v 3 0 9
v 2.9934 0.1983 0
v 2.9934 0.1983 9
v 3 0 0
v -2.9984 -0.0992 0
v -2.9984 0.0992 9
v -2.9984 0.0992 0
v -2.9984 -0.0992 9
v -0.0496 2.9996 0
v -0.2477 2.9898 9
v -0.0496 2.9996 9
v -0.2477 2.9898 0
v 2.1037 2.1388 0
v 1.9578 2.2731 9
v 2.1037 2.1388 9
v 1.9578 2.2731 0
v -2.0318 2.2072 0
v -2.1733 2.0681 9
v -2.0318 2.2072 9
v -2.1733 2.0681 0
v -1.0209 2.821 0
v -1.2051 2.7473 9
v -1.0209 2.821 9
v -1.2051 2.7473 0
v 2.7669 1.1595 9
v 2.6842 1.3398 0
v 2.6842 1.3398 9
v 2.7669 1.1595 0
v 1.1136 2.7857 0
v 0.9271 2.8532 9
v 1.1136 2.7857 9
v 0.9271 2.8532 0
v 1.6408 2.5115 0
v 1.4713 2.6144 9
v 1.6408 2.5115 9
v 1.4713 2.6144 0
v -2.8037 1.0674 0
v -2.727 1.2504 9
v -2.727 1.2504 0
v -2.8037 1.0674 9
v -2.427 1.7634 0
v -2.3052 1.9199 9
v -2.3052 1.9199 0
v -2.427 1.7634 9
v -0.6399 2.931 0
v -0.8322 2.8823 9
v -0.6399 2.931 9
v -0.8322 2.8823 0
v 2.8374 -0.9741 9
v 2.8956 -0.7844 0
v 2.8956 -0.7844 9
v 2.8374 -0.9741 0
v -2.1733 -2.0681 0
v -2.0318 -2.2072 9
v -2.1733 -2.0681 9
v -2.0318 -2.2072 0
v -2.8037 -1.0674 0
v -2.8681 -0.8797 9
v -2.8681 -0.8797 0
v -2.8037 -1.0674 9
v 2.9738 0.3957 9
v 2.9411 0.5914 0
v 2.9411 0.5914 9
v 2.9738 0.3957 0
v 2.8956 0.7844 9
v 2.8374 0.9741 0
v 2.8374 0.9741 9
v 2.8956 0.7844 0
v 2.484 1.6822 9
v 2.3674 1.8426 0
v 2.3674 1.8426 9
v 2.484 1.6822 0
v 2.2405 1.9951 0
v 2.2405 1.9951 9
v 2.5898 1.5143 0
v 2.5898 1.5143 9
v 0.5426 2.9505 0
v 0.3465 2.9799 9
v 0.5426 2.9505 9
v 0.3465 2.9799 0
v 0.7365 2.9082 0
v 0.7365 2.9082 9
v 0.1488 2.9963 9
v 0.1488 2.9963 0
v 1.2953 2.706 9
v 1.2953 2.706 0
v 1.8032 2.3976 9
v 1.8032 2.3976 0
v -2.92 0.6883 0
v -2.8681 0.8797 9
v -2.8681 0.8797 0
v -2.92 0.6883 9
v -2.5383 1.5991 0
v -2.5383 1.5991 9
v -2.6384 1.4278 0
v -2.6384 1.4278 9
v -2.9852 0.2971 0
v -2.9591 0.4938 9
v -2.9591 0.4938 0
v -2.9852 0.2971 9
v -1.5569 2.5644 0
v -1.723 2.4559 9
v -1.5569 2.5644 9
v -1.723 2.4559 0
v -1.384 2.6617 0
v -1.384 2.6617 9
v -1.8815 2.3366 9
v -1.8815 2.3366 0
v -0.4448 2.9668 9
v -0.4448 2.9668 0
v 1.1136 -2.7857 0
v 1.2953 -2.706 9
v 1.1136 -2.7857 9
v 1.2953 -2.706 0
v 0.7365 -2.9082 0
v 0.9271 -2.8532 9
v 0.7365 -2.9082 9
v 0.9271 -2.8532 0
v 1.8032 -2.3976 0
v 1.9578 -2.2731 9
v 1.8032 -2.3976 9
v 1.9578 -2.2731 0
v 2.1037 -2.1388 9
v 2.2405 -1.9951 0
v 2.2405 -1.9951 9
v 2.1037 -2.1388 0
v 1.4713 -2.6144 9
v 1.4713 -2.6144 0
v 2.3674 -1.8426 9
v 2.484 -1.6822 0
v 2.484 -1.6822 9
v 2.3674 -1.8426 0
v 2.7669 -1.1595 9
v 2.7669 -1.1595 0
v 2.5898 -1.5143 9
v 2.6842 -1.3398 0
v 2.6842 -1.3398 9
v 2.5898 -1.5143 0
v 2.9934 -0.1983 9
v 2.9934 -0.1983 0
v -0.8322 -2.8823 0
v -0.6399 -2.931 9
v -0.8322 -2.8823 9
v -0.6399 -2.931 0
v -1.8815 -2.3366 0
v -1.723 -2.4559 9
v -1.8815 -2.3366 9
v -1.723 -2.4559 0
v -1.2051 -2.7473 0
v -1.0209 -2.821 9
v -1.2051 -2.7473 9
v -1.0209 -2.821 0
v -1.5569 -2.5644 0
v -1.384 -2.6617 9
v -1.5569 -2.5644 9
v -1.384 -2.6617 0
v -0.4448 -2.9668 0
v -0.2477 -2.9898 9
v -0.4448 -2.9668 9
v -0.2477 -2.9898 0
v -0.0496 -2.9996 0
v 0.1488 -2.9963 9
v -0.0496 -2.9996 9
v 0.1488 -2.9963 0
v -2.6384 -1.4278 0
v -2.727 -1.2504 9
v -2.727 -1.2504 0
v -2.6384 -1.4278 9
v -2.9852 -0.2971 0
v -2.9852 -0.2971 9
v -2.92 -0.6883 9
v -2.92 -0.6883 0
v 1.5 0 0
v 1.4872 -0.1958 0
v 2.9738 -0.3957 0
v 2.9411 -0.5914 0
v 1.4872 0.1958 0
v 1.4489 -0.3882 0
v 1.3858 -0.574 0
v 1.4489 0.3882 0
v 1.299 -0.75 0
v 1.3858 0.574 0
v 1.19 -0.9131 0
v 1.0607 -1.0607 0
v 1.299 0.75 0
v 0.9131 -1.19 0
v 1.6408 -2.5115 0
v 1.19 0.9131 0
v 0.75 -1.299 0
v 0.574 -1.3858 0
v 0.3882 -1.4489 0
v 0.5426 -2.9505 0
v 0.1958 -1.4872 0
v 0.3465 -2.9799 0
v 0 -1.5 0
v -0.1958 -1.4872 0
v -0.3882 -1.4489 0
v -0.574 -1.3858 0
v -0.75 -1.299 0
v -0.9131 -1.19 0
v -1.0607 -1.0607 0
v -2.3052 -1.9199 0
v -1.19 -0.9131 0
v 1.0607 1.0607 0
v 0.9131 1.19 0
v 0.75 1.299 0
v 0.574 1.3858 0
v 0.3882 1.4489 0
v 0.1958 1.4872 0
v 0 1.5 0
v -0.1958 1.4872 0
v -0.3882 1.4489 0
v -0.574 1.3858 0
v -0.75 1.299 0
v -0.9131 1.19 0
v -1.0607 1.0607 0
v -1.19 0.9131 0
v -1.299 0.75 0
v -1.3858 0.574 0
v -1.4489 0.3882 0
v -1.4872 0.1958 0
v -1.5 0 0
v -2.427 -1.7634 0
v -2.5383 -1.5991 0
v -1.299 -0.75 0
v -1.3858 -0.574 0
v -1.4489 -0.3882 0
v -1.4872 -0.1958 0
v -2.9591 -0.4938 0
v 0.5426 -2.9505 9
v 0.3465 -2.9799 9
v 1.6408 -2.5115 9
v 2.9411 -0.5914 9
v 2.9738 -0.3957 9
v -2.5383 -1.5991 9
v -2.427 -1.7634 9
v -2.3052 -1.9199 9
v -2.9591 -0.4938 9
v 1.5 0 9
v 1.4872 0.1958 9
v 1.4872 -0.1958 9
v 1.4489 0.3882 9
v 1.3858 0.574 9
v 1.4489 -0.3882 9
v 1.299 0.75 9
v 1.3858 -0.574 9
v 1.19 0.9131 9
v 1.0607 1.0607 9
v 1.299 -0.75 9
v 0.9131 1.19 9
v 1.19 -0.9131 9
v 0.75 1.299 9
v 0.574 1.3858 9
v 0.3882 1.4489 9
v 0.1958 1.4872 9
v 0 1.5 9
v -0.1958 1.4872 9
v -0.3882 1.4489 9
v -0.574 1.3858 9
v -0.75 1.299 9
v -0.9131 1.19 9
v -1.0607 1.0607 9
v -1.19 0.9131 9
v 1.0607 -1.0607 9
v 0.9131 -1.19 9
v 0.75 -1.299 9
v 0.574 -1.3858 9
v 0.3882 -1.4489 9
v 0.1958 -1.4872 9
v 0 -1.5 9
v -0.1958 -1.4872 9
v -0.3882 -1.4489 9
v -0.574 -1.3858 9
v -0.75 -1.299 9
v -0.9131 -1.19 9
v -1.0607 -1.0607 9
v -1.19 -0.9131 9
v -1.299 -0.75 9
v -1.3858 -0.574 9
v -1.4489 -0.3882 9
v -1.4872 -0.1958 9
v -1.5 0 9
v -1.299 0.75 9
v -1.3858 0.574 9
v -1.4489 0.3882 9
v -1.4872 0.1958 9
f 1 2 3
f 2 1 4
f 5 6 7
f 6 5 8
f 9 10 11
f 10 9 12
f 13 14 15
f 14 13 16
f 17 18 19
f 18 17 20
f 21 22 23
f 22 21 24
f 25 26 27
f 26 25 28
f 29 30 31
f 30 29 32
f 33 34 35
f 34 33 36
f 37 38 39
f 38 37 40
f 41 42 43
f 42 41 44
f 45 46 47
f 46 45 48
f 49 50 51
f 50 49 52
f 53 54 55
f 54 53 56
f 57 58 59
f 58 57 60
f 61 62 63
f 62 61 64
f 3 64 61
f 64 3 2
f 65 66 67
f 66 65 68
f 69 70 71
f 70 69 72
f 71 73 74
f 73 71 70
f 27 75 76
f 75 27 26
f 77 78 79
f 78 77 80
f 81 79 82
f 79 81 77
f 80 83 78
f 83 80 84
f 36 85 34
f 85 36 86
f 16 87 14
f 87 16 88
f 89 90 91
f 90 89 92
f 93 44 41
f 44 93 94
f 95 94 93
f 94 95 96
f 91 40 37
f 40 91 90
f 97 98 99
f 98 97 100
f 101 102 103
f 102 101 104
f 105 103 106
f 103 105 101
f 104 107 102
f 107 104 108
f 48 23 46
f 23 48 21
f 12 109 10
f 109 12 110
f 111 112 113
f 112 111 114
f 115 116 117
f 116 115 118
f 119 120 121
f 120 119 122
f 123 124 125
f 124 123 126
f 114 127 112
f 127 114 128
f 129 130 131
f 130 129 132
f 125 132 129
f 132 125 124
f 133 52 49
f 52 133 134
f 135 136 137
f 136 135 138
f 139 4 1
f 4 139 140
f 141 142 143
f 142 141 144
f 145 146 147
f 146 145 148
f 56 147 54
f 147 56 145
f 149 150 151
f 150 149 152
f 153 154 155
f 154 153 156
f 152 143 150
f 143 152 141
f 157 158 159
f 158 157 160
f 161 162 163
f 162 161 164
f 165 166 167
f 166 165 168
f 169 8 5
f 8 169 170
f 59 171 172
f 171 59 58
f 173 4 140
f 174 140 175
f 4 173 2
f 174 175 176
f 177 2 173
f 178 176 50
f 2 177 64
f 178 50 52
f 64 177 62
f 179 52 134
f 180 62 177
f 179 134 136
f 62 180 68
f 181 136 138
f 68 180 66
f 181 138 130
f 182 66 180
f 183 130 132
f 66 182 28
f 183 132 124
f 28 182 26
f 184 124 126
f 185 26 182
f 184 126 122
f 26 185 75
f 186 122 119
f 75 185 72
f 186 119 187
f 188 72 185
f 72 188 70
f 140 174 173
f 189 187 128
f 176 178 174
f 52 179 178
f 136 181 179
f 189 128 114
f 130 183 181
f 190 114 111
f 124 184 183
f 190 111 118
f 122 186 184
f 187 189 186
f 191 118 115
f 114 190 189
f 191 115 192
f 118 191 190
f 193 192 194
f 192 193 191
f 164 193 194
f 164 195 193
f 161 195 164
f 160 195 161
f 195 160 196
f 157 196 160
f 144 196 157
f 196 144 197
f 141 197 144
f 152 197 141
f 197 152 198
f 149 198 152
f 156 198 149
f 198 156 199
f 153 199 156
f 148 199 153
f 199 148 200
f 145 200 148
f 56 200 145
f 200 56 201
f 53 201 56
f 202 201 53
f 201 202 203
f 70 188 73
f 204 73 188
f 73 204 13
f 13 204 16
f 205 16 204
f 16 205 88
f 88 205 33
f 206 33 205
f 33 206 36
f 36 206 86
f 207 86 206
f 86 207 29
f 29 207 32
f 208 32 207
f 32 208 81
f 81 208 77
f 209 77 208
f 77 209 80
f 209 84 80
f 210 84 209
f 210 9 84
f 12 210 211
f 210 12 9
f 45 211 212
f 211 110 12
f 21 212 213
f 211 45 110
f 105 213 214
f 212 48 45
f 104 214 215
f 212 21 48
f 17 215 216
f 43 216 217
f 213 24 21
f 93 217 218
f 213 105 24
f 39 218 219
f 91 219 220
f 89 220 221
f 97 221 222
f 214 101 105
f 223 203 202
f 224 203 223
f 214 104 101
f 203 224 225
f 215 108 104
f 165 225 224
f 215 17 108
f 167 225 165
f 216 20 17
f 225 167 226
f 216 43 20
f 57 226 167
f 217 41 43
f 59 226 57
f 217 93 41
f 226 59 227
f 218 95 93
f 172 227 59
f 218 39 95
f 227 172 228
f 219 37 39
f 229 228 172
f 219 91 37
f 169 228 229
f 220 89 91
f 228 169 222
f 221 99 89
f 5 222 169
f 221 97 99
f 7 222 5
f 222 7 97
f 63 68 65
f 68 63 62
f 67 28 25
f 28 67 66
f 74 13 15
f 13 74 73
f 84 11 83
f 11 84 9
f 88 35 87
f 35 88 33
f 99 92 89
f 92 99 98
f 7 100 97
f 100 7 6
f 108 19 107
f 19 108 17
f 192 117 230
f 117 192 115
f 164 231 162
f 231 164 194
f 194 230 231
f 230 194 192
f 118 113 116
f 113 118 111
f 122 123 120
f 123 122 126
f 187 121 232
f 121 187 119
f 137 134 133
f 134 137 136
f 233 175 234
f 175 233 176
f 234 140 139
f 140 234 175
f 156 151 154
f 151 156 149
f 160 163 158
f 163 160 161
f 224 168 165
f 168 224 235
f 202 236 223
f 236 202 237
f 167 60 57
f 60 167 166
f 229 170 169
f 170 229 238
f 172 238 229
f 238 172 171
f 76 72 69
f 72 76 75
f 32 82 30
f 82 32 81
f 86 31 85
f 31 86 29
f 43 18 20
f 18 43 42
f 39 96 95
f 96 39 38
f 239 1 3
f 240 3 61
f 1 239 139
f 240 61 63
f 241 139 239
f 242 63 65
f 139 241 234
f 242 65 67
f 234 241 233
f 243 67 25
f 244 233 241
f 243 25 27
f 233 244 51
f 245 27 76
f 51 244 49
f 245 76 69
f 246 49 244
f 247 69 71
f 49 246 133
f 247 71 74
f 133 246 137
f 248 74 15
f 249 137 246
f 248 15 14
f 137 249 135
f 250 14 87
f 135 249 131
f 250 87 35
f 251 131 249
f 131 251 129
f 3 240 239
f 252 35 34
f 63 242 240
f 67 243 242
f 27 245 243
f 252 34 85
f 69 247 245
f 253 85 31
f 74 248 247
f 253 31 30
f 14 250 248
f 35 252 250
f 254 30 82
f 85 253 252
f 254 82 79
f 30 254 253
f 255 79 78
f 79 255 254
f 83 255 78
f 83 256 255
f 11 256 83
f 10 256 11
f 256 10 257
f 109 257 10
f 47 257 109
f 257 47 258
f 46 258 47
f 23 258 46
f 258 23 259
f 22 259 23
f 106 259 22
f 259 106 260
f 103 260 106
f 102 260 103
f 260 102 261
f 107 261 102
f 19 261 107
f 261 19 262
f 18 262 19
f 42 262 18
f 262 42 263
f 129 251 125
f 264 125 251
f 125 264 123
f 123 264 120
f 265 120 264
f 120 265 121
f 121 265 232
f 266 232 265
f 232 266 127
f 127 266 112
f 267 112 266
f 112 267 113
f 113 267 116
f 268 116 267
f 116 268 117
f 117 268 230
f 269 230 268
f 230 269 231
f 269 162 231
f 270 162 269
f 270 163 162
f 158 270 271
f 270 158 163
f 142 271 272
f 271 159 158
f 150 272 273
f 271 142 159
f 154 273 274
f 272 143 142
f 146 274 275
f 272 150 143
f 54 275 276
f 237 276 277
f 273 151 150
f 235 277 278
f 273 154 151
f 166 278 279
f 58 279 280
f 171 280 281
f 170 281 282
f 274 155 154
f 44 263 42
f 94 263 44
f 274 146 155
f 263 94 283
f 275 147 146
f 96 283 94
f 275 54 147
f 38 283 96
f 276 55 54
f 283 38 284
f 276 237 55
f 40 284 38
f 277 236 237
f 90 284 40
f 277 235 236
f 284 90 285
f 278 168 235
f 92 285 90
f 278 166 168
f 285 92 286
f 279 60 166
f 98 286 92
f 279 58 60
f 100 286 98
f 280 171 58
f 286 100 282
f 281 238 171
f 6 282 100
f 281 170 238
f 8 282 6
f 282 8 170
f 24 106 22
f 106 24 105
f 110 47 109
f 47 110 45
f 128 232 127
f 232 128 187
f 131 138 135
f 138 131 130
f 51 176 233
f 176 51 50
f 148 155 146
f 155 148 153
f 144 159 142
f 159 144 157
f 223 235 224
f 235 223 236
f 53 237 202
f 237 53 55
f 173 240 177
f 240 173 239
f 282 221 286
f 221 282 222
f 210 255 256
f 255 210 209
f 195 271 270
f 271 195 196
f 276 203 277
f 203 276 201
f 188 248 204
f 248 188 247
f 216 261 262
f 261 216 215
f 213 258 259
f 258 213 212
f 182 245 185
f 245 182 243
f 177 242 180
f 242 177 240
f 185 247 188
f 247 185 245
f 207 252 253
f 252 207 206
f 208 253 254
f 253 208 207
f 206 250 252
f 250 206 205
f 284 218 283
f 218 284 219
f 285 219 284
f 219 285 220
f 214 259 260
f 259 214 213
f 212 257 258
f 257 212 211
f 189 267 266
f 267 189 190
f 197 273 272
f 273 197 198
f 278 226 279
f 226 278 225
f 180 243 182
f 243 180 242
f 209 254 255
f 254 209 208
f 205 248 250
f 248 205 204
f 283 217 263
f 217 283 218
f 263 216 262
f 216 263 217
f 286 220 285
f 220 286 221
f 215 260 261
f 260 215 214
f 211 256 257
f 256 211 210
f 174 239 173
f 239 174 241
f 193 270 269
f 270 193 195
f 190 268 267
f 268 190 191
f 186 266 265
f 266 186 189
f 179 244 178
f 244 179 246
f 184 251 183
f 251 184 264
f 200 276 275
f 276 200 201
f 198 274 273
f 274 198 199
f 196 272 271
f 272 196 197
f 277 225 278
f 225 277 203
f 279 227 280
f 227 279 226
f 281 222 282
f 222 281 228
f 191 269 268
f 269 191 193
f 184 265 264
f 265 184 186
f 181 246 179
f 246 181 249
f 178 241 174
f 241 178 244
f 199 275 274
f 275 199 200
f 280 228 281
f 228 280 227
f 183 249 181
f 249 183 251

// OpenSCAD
/*

Spacers to be used with Raspberry Pi HATs to keep the HAT parallel to the Raspberry Pi

*/

$fa = 0.2;
$fs = 0.2;

height = 9;
inner_r = 1.5;
outer_r = 3;

difference(){
    cylinder(r = outer_r, h = height);
    
    translate([0,0,-1]) cylinder(r = inner_r, h = height + 2);
};
